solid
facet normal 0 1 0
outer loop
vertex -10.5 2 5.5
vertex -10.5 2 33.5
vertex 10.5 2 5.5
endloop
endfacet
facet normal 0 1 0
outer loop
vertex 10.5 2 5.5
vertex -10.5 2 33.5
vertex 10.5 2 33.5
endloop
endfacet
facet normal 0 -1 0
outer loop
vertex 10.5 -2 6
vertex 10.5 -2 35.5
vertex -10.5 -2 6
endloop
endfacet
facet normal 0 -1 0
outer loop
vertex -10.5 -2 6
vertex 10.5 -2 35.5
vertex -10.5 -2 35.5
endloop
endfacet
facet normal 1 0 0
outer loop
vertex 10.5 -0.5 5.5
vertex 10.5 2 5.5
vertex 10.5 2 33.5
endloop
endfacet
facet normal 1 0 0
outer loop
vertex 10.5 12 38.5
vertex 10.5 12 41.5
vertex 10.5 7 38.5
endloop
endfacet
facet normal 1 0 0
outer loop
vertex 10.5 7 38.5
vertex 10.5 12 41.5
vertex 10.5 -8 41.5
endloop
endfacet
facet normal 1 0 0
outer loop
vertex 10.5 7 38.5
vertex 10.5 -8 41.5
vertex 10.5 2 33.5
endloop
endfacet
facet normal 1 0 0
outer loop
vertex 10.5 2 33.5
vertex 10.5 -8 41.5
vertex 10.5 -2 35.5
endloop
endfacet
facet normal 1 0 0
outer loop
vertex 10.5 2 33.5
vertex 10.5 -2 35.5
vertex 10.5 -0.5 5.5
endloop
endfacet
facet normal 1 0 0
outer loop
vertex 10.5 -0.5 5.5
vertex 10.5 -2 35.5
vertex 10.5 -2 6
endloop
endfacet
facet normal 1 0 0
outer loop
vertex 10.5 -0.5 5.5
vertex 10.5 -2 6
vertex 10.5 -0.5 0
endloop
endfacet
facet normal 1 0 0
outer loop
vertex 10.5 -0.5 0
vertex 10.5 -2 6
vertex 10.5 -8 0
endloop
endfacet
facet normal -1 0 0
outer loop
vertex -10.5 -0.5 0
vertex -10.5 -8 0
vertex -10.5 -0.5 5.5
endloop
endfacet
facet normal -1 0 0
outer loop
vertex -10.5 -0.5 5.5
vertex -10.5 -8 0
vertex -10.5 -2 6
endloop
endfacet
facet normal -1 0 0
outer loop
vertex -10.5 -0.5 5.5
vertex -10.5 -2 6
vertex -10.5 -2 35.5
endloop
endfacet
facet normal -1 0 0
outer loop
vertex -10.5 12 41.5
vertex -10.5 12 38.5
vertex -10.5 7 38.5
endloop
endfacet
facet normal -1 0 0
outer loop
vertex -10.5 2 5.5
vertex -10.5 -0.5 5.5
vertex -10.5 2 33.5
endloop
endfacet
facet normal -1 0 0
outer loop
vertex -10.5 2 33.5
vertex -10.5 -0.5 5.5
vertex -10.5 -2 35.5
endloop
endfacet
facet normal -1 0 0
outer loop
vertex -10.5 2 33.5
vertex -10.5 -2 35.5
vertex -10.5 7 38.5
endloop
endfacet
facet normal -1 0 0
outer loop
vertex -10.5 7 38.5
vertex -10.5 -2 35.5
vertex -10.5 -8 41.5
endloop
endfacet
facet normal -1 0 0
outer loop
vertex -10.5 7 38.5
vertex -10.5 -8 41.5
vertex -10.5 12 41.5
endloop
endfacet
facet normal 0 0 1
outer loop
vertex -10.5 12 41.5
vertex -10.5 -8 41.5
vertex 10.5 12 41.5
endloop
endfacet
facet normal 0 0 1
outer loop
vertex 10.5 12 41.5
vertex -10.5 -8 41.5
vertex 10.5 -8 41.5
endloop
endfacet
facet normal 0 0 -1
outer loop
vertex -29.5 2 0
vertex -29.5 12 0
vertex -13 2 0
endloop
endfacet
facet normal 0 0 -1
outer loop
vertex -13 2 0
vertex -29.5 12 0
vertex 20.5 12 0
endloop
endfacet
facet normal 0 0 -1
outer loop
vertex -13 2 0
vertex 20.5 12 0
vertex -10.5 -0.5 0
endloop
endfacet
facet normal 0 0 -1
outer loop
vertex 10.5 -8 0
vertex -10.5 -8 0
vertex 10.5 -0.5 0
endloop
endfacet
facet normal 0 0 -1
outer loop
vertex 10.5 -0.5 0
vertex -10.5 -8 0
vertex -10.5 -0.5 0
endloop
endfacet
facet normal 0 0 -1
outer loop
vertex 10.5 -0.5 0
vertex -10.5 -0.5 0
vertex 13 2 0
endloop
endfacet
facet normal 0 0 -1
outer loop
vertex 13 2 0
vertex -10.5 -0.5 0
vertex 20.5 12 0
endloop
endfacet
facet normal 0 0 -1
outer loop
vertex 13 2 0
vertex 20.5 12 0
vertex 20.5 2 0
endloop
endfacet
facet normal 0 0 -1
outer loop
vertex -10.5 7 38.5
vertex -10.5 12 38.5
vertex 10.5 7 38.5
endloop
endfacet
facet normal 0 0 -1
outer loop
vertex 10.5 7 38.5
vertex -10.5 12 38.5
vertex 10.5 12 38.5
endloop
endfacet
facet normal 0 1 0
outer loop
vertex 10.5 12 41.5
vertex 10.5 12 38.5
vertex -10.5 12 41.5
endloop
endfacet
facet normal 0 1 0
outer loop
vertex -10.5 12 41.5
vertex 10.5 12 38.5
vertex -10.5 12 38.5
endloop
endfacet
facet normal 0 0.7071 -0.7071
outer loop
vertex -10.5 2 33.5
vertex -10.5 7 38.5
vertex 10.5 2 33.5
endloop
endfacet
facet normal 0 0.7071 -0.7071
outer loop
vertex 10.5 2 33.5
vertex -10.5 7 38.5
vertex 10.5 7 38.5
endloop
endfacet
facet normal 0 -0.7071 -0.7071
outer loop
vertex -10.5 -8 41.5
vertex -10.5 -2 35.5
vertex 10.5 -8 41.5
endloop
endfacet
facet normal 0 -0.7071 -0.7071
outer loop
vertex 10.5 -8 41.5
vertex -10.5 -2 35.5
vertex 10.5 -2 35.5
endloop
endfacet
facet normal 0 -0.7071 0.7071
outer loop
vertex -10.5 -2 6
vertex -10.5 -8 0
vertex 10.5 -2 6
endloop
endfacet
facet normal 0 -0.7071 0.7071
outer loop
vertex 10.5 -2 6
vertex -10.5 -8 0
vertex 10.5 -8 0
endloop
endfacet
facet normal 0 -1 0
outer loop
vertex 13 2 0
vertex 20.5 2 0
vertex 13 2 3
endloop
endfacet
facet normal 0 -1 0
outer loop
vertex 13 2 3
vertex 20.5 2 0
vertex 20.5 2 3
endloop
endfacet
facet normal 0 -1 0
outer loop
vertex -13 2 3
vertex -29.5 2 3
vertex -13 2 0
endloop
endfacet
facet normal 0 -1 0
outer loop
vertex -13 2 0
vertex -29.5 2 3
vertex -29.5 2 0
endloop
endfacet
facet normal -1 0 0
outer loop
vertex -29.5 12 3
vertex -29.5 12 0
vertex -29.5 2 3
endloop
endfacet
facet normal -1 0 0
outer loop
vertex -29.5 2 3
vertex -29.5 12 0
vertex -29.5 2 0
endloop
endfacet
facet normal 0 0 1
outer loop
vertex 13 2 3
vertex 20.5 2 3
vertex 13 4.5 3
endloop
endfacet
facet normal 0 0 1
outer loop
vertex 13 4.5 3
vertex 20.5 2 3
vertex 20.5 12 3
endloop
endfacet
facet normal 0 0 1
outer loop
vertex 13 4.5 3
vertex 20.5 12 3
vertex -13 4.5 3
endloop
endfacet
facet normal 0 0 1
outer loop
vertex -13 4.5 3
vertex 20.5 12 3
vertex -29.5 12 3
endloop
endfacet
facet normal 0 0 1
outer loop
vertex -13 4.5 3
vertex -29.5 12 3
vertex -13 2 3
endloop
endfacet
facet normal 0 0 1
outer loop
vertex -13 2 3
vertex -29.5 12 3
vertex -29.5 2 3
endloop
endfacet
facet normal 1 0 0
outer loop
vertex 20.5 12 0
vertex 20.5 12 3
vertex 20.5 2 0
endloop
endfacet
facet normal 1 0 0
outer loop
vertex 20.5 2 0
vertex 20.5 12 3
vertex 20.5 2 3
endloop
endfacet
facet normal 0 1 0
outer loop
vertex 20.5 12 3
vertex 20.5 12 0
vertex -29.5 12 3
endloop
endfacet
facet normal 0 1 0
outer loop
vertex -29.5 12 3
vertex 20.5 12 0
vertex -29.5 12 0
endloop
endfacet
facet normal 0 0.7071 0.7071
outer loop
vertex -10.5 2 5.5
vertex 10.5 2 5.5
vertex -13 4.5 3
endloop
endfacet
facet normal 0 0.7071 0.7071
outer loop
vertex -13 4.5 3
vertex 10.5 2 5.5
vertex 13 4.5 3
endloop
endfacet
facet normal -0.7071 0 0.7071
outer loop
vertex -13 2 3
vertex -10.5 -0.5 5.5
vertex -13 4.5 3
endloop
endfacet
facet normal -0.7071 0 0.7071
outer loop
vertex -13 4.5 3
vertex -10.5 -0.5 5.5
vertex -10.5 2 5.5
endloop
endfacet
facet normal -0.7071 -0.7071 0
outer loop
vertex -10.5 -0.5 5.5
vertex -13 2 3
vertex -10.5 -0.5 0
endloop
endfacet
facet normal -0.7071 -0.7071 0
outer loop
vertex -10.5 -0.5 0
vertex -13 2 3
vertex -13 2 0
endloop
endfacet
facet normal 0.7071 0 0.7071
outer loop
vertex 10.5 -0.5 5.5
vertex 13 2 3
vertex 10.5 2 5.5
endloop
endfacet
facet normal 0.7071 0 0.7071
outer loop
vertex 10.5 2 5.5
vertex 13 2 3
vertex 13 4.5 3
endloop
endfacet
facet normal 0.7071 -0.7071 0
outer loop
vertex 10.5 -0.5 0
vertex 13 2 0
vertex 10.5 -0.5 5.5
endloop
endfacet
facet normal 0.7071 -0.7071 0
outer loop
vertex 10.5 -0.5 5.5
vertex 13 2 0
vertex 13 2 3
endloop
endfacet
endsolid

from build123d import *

# Parameters (mm, degrees)
SKETCH1_W           = 21
SKETCH1_H           = 4
BOSS_EXTRUDE1_DEPTH = 41.5
SKETCH2_W           = 21
SKETCH2_H           = 3
BOSS_EXTRUDE2_DEPTH = 10
CHAMFER1_SIZE       = 5
BOSS_EXTRUDE3_DEPTH = 21
SKETCH6_W           = 50
SKETCH6_H           = 3
BOSS_EXTRUDE4_DEPTH = 10
CHAMFER3_SIZE       = 2.5
CHAMFER4_SIZE       = 2.5
CHAMFER5_SIZE       = 2.5


with BuildPart() as part:
    # Sketch1 → Boss-Extrude1 (new body)
    with BuildSketch(Plane.XY):
        Rectangle(SKETCH1_W, SKETCH1_H)
    extrude(amount=BOSS_EXTRUDE1_DEPTH)

    # Sketch2 → Boss-Extrude2 (add)
    with BuildSketch(Plane(origin=(0, 2, 0), x_dir=(1, 0, 0), z_dir=(0, 1, 0))):
        with Locations((0, -40)):
            Rectangle(SKETCH2_W, SKETCH2_H)
    extrude(amount=BOSS_EXTRUDE2_DEPTH)

    # Chamfer1
    chamfer1_edges = [part.edges().sort_by_distance(p)[0] for p in [
        (0, 2, 38.5),
    ]]
    chamfer(chamfer1_edges, length=CHAMFER1_SIZE)

    # Sketch4 → Boss-Extrude3 (add)
    with BuildSketch(Plane(origin=(10.5, 0, 0), x_dir=(0, 0, -1), z_dir=(1, 0, 0))):
        Polygon((-35.5, -2), (-41.5, -8), (-41.5, -2), align=None)
        Polygon((0, -2), (0, -8), (-6, -2), align=None)
    extrude(amount=-BOSS_EXTRUDE3_DEPTH)

    # Sketch6 → Boss-Extrude4 (add)
    with BuildSketch(Plane(origin=(0, 2, 0), x_dir=(1, 0, 0), z_dir=(0, 1, 0))):
        with Locations((-4.5, -1.5)):
            Rectangle(SKETCH6_W, SKETCH6_H)
    extrude(amount=BOSS_EXTRUDE4_DEPTH)

    # Chamfer3
    chamfer3_edges = [part.edges().sort_by_distance(p)[0] for p in [
        (0, 2, 3),
    ]]
    chamfer(chamfer3_edges, length=CHAMFER3_SIZE)

    # Chamfer4
    chamfer4_edges = [part.edges().sort_by_distance(p)[0] for p in [
        (-10.5, 2, 1.5),
        (-10.5, 3.25, 3),
    ]]
    chamfer(chamfer4_edges, length=CHAMFER4_SIZE)

    # Chamfer5
    chamfer5_edges = [part.edges().sort_by_distance(p)[0] for p in [
        (10.5, 2, 1.5),
        (10.5, 3.25, 3),
    ]]
    chamfer(chamfer5_edges, length=CHAMFER5_SIZE)


solid = part.part
